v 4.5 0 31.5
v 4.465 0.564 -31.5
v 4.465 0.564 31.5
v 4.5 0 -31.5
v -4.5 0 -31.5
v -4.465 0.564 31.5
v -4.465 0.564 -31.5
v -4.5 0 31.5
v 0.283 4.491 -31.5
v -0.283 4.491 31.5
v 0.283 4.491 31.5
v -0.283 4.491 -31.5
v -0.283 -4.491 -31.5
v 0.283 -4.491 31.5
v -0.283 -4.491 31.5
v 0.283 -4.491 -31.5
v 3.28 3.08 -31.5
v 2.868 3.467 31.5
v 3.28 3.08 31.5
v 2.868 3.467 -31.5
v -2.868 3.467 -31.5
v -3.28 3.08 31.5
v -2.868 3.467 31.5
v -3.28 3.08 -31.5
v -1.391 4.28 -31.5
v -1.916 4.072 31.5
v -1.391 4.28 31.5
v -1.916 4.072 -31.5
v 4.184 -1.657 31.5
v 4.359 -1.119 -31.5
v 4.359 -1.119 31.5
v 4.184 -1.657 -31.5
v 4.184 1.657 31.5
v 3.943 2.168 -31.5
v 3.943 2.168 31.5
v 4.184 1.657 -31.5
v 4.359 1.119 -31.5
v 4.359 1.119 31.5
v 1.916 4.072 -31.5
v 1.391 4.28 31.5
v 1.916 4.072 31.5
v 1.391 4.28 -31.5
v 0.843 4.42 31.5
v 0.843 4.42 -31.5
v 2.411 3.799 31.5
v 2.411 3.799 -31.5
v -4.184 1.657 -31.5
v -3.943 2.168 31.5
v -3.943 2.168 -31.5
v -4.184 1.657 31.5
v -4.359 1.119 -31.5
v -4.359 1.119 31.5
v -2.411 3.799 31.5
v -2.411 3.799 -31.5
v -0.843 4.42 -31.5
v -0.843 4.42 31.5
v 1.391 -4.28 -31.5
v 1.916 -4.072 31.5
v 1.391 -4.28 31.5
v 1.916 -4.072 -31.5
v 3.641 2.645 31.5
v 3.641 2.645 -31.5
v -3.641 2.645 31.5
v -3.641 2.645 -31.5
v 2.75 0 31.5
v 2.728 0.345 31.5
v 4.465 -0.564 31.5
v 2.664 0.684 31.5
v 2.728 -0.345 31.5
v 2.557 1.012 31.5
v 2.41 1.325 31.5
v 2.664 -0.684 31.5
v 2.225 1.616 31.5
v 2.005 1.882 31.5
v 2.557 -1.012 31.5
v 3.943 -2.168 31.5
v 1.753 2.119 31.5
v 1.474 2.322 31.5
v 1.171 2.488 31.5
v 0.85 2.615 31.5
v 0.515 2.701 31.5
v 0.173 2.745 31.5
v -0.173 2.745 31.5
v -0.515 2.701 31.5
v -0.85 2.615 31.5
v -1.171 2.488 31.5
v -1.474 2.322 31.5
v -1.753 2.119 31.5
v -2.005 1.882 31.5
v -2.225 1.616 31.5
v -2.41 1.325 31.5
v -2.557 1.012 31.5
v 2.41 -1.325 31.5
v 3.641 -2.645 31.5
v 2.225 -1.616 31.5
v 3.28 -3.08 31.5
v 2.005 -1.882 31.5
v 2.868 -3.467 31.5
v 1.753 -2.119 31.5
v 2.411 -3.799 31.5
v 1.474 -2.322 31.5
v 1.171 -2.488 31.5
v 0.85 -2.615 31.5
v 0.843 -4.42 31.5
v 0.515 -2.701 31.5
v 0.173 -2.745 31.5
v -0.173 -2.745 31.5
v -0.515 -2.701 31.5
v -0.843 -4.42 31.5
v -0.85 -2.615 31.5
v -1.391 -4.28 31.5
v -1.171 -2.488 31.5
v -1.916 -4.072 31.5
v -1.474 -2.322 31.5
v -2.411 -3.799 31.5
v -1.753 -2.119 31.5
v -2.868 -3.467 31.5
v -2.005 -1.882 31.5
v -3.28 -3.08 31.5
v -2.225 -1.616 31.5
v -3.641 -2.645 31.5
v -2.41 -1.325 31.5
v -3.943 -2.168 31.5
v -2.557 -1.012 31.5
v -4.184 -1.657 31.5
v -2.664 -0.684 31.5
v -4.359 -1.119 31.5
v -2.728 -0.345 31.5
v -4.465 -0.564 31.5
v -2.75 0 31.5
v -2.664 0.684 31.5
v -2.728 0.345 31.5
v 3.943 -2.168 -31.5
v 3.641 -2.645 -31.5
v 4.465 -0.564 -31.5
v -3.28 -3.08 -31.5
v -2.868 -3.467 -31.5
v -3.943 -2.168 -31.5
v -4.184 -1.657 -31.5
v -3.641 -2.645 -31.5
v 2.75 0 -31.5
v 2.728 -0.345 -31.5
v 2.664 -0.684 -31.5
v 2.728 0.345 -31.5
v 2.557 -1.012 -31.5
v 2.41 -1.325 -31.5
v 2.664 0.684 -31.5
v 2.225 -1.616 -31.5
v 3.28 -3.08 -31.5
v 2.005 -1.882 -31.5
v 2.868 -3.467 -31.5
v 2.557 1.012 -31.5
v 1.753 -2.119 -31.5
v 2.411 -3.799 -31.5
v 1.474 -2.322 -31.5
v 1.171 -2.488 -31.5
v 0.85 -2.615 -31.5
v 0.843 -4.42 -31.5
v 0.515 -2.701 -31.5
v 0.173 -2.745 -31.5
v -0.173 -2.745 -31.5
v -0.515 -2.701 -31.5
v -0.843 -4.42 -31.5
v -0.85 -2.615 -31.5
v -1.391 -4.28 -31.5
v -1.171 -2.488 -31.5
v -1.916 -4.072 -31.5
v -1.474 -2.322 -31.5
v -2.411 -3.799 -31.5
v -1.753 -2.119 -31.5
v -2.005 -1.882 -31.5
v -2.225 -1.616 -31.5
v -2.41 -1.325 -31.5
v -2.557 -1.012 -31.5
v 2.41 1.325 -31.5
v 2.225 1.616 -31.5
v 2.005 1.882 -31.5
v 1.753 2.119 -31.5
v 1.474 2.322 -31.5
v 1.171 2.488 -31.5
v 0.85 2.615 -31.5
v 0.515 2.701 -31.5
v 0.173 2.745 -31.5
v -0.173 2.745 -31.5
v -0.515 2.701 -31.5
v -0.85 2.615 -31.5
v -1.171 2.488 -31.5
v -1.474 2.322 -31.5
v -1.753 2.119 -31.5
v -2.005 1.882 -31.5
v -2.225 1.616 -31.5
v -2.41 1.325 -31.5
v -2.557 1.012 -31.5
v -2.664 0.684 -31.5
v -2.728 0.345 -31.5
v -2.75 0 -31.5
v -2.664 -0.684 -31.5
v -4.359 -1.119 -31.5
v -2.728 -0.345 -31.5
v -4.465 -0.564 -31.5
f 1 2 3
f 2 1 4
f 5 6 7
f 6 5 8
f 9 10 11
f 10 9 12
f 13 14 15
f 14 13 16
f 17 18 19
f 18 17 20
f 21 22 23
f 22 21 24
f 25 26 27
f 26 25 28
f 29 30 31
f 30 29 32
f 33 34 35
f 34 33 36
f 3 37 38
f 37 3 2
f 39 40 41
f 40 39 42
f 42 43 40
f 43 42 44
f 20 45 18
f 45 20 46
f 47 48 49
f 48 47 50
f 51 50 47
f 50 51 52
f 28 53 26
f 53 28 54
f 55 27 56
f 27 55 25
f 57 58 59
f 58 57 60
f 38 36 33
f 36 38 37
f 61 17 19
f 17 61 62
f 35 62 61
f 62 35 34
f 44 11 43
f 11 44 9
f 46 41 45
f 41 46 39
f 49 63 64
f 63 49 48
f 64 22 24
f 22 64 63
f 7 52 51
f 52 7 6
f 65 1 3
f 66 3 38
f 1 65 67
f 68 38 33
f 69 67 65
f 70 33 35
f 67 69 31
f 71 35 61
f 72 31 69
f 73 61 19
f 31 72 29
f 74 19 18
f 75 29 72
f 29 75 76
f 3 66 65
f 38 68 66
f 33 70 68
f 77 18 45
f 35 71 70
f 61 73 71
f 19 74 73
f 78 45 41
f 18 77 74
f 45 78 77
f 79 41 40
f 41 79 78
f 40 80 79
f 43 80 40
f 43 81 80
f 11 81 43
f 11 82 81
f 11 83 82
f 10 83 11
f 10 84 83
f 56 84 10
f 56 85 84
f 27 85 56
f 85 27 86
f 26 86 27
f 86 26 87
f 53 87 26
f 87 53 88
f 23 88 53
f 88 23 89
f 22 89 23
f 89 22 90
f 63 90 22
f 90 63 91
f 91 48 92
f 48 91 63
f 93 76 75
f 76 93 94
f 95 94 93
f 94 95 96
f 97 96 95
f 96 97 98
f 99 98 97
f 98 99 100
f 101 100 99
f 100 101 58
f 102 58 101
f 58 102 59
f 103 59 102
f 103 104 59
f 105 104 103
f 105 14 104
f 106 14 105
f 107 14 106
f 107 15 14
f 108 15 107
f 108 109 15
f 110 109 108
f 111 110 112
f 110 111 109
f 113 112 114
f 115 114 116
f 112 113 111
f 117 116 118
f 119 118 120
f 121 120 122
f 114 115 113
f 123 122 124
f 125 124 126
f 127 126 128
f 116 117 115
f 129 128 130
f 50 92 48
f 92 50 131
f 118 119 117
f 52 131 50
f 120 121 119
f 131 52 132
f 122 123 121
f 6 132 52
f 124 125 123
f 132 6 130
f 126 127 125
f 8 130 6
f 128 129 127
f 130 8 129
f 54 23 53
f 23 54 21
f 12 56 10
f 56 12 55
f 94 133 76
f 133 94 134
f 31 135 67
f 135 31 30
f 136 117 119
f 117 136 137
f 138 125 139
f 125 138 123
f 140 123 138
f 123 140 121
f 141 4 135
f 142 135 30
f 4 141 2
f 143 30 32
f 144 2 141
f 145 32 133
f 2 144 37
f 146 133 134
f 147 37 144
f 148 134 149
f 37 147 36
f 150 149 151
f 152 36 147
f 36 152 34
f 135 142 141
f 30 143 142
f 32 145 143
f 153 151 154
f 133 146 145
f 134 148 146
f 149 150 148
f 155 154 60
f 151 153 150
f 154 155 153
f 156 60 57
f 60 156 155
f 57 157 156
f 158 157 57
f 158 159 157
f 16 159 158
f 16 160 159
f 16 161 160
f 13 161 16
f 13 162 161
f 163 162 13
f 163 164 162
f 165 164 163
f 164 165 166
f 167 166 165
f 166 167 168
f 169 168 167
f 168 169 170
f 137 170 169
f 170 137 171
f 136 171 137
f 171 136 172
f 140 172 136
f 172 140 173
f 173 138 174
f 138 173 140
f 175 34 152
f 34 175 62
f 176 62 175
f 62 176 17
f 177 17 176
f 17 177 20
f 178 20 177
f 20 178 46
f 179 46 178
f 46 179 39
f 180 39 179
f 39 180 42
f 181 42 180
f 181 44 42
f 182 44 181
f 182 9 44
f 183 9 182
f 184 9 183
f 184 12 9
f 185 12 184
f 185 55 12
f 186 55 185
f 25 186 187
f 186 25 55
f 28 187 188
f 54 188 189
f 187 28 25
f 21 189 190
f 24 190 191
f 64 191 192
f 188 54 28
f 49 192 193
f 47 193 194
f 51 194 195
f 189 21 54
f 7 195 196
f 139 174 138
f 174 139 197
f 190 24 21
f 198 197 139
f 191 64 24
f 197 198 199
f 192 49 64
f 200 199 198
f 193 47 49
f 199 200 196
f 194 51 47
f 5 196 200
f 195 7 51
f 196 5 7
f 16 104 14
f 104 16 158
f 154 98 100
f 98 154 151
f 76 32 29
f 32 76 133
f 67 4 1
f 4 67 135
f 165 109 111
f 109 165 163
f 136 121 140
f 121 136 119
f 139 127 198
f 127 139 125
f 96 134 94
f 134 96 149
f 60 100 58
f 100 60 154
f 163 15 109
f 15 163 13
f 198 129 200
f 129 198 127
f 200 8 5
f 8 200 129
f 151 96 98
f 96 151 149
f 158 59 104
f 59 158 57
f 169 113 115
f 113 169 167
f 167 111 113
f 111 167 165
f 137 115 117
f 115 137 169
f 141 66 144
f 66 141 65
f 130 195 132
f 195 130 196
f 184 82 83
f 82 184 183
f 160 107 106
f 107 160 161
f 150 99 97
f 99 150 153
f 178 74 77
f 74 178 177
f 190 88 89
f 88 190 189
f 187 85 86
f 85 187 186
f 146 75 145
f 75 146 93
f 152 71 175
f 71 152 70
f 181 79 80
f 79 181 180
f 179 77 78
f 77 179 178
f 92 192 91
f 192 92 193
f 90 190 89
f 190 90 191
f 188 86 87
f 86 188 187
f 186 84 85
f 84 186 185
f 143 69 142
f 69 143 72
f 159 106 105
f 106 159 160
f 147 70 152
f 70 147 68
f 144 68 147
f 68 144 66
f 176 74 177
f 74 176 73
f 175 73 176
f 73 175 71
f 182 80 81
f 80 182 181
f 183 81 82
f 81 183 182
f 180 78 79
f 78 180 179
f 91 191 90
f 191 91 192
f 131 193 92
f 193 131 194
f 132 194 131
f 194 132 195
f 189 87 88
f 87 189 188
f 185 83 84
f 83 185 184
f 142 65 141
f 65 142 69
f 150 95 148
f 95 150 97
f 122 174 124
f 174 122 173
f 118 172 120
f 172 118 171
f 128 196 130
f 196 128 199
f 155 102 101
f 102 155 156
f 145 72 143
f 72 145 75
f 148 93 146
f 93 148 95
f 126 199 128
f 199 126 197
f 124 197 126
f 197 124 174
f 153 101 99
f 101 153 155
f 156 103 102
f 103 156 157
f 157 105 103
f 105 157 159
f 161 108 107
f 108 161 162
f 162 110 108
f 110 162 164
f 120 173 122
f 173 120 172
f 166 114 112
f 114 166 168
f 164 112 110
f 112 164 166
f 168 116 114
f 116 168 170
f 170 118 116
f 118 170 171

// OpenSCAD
$fn = 50;


difference() {
	union() {
		translate(v = [0, 0, -31.5000000000]) {
			cylinder(h = 63, r = 4.5000000000);
		}
	}
	union() {
		translate(v = [0, 0, -100.0000000000]) {
			cylinder(h = 200, r = 2.7500000000);
		}
	}
}
